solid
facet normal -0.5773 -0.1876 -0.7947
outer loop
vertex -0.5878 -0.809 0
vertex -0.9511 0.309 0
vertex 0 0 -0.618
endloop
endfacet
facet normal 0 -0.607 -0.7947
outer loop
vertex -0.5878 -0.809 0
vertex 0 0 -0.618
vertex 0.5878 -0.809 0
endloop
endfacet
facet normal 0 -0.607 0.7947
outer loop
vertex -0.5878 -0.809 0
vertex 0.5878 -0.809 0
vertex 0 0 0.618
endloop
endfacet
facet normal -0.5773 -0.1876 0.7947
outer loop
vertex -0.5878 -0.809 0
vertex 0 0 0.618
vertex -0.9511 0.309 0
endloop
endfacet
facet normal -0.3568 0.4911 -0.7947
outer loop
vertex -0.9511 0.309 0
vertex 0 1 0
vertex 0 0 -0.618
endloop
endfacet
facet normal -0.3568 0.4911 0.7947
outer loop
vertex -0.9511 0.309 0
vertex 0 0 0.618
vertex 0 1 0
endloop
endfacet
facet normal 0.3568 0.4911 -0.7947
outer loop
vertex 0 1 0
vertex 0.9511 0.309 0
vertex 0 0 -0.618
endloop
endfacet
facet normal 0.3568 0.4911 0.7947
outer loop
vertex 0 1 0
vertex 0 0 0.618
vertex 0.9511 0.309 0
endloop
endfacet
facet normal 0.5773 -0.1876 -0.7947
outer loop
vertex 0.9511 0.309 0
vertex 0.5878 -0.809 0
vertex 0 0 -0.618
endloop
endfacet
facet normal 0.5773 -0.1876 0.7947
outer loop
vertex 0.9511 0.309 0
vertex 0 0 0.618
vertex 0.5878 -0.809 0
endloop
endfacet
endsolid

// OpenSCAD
polyhedron( points = [[-0.587785252185819, -0.809016994397647, 0.0], [-0.951056516130549, 0.309016994378849, 0.0], [-1.0758450911319e-10, 0.999999999991165, 0.0], [0.951056516026368, 0.309016994378849, 0.0], [0.58778525226123, -0.809016994397647, 0.0], [6.81774697225718e-11, 2.32147524755201e-11, -0.618033988608792], [6.81774697225718e-11, 2.32147524755201e-11, 0.618033988608792]], faces = [[0, 1, 5], [0, 5, 4], [0, 4, 6], [0, 6, 1], [1, 2, 5], [1, 6, 2], [2, 3, 5], [2, 6, 3], [3, 4, 5], [3, 6, 4]]);
